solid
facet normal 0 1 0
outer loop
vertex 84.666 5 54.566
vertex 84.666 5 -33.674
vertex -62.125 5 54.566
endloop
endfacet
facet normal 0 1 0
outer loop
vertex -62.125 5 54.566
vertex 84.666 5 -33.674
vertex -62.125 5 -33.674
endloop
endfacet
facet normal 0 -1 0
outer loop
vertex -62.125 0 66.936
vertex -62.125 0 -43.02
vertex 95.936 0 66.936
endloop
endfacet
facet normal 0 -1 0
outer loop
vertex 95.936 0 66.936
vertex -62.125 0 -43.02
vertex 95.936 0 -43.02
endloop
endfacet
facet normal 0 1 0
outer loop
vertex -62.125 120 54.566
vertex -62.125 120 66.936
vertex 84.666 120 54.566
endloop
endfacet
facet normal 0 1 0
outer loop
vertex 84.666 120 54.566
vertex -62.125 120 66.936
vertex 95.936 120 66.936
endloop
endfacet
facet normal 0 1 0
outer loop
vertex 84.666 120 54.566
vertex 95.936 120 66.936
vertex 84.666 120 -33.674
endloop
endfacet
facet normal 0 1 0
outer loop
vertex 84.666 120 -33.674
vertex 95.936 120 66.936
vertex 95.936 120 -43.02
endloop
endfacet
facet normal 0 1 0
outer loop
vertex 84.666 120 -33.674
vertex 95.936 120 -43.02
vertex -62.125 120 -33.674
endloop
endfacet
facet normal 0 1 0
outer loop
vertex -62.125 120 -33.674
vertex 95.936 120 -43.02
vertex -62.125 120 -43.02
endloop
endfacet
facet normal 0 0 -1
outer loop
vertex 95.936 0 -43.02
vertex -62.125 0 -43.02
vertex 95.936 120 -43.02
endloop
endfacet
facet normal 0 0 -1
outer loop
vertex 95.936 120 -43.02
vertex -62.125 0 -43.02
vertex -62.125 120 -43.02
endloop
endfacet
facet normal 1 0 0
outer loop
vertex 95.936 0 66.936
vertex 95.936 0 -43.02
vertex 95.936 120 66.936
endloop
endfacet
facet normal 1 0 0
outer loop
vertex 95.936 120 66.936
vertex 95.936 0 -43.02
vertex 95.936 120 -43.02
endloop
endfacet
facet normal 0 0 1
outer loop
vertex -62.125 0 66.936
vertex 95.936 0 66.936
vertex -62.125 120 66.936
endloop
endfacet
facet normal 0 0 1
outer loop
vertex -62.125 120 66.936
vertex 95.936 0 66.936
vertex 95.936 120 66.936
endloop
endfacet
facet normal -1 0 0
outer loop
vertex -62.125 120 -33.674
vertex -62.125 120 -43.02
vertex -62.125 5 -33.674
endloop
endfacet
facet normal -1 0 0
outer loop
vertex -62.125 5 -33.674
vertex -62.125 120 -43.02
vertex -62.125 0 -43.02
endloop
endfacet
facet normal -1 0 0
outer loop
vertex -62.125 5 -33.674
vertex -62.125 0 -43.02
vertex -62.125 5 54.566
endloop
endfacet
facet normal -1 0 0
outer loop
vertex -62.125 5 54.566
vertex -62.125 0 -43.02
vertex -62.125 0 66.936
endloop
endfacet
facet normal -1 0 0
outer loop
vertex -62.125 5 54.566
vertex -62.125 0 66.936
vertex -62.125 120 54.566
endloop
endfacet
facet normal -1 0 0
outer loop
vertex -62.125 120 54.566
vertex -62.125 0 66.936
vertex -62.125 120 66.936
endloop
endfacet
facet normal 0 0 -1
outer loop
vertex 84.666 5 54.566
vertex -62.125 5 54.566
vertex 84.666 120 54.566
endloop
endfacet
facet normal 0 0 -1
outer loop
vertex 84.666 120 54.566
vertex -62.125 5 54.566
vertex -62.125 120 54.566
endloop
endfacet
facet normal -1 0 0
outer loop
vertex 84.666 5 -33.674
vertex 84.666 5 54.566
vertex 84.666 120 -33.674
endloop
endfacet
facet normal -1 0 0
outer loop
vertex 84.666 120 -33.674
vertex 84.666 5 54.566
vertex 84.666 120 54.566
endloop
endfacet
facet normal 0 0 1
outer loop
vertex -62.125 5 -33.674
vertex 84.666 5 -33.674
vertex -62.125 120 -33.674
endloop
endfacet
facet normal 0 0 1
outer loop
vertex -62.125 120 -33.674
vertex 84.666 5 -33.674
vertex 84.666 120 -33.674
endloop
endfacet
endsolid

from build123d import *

# Parameters (mm, degrees)
BOSS_EXTRUDE1_DEPTH = 120
SKETCH2_W           = 158.061450485
SKETCH2_H           = 109.955791642
BOSS_EXTRUDE2_DEPTH = 5


with BuildPart() as part:
    # Sketch1 → Boss-Extrude1 (new body)
    with BuildSketch(Plane(origin=(0, 0, 0), x_dir=(1, 0, 0), z_dir=(0, 1, 0))):
        Polygon((-62.125022278, 33.67396119), (84.665959564, 33.67396119), (84.665959564, -54.565561602), (-62.125022278, -54.565561602), (-62.125022278, -66.935588162), (95.936428207, -66.935588162), (95.936428207, 43.02020348), (-62.125022278, 43.02020348), align=None)
    extrude(amount=BOSS_EXTRUDE1_DEPTH)

    # Sketch2 → Boss-Extrude2 (add)
    with BuildSketch(Plane.XZ):
        with Locations((16.905702965, 11.957692341)):
            Rectangle(SKETCH2_W, SKETCH2_H)
    extrude(amount=-BOSS_EXTRUDE2_DEPTH)


solid = part.part
